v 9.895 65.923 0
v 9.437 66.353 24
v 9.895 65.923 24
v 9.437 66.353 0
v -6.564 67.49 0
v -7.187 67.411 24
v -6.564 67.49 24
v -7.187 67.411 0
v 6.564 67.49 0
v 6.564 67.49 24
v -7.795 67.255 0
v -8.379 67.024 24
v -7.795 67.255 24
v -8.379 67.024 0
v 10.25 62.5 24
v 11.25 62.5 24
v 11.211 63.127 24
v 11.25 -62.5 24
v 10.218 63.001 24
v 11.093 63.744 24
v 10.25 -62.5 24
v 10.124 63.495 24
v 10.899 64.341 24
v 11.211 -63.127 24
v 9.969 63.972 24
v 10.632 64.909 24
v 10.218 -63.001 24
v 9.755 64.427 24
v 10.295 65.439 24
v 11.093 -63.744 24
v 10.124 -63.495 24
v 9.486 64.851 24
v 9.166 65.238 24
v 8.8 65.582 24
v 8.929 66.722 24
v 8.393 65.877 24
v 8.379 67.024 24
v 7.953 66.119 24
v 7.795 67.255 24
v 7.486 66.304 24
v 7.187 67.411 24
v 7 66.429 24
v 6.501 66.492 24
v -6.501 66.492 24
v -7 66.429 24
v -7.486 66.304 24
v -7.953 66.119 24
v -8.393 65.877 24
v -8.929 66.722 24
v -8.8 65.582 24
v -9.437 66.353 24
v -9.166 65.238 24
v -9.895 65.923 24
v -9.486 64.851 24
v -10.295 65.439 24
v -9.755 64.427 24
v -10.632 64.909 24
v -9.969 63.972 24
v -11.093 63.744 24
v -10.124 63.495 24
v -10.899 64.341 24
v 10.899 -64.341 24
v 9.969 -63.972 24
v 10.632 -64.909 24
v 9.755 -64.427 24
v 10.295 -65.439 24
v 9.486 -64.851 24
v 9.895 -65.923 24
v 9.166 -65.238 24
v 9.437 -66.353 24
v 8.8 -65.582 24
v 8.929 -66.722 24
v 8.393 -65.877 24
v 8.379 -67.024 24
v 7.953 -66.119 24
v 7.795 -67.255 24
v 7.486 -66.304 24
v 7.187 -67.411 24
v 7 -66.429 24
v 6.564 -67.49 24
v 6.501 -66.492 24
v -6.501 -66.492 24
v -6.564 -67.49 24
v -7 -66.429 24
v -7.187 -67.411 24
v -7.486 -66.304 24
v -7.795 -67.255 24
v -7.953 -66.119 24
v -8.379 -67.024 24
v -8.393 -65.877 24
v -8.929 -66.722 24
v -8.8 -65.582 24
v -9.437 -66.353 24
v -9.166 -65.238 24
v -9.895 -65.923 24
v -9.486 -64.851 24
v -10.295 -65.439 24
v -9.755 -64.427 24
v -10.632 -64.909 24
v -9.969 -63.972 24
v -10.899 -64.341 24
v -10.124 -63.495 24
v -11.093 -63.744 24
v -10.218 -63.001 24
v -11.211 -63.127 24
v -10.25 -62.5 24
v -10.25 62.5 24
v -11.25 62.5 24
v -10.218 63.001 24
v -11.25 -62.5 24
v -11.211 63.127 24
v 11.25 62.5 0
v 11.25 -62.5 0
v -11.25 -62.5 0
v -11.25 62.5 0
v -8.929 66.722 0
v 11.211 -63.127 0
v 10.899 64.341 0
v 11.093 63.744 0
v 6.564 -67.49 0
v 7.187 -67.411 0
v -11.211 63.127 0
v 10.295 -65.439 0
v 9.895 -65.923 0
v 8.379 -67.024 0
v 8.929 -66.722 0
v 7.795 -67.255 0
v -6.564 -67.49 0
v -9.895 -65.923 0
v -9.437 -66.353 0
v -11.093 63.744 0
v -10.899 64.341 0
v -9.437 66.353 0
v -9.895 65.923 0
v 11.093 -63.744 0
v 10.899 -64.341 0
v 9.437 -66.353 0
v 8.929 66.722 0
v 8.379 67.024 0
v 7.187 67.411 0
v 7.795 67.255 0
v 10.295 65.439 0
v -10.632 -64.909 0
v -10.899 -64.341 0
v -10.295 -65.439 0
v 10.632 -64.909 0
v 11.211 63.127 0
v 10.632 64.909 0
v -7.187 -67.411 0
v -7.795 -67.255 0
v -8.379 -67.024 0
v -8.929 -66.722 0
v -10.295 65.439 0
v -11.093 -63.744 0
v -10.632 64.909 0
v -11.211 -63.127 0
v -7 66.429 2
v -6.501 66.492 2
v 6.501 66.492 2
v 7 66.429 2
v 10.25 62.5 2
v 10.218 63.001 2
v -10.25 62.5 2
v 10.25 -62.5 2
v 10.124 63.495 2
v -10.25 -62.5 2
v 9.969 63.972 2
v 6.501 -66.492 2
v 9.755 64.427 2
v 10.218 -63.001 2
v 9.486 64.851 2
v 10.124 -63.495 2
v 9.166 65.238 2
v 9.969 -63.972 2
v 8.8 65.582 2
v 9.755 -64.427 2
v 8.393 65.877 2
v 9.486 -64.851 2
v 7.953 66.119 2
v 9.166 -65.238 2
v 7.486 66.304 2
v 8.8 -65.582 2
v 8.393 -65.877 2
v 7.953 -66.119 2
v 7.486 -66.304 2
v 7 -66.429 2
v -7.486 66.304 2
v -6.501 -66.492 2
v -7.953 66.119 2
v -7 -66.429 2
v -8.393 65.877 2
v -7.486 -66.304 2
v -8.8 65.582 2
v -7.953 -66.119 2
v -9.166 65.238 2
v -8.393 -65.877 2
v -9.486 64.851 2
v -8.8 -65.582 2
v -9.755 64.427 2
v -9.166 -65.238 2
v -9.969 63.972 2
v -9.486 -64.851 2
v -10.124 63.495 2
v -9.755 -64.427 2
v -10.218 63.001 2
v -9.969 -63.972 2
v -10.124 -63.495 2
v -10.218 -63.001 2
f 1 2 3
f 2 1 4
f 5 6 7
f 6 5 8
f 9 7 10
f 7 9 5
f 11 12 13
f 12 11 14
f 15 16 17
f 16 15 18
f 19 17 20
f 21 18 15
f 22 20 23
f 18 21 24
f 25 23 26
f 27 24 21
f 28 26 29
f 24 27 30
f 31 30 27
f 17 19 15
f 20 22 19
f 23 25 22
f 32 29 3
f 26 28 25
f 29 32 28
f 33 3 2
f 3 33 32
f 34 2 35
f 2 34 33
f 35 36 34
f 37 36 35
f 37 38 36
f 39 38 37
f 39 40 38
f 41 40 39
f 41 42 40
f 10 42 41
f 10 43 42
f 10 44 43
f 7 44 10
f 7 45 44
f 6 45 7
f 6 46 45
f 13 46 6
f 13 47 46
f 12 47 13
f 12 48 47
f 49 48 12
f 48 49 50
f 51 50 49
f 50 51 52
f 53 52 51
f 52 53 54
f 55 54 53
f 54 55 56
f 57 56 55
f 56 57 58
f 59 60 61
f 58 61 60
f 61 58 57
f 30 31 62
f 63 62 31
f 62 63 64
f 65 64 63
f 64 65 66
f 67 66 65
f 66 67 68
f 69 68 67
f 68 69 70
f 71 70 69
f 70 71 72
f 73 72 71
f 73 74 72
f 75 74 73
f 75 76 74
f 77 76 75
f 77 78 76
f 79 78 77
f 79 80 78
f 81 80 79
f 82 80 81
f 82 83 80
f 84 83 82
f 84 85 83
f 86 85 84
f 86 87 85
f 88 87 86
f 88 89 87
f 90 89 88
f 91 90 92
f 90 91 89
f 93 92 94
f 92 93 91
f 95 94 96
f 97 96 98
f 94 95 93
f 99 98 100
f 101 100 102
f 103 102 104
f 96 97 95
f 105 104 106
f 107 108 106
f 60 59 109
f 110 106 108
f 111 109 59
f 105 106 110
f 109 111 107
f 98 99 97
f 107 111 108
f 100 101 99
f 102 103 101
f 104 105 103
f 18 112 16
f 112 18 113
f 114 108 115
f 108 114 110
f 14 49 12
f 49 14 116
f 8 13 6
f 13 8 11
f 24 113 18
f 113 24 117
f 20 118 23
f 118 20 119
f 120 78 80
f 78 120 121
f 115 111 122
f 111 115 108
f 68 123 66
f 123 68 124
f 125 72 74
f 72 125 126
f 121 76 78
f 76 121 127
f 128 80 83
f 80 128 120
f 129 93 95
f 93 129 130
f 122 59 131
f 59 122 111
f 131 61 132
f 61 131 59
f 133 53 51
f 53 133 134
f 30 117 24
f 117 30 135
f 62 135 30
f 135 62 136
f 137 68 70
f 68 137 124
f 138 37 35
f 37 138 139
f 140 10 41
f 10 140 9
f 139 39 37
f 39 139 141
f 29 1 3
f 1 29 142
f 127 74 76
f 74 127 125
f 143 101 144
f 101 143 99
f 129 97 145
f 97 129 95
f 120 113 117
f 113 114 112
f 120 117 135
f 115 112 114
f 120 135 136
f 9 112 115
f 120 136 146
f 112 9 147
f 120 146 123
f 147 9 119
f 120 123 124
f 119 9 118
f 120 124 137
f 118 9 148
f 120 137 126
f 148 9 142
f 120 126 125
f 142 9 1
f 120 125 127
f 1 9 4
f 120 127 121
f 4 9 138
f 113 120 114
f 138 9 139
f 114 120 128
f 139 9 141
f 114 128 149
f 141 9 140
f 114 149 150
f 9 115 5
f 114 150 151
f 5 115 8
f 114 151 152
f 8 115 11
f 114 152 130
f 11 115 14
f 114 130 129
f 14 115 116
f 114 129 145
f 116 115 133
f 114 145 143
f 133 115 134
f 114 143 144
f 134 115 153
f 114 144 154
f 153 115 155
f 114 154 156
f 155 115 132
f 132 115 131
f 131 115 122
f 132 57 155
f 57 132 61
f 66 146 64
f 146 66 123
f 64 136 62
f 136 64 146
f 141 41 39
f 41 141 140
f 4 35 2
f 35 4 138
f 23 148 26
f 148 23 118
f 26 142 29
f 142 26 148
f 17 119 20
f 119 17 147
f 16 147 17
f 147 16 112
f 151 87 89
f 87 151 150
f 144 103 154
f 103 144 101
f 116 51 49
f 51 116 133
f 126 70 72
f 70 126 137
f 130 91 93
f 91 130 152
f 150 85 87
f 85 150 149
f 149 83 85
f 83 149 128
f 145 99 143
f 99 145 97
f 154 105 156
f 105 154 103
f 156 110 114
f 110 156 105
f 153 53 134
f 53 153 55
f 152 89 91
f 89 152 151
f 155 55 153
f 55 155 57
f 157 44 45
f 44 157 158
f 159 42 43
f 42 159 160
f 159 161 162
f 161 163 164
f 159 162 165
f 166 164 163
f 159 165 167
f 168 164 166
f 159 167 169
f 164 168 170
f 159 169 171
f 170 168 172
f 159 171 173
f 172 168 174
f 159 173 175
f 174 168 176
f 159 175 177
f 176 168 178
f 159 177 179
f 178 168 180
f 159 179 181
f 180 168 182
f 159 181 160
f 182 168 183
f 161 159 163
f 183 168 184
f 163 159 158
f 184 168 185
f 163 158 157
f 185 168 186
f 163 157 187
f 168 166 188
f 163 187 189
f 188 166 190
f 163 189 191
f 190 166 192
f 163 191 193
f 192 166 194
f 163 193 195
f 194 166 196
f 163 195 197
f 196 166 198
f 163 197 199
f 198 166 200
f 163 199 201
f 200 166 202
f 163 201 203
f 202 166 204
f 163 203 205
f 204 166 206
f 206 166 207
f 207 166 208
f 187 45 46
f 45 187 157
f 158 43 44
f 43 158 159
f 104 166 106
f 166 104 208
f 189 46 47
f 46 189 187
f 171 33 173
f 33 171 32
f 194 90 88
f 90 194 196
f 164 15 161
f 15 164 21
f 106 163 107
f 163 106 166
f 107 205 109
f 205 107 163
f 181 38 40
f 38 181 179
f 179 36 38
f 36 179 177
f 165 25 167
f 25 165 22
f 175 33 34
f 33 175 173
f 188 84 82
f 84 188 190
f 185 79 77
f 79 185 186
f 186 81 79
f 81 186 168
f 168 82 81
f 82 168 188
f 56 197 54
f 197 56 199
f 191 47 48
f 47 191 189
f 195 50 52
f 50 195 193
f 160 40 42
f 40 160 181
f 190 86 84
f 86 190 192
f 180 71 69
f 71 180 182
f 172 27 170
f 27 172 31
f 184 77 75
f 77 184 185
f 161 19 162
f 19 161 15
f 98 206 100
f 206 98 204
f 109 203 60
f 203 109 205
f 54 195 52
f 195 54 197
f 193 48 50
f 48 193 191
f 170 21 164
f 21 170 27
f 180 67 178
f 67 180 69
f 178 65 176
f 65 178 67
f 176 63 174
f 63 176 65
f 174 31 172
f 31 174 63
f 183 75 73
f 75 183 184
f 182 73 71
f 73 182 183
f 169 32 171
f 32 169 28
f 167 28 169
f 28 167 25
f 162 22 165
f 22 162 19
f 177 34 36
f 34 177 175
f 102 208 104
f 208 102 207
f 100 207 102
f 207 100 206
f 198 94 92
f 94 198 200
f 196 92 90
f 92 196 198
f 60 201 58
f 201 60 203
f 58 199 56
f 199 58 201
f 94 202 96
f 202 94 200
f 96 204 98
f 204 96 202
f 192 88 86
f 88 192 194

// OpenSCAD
$fn = 50;


difference() {
	union() {
		hull() {
			translate(v = [-6.2500000000, 62.5000000000, 0]) {
				cylinder(h = 24, r = 5);
			}
			translate(v = [6.2500000000, 62.5000000000, 0]) {
				cylinder(h = 24, r = 5);
			}
			translate(v = [-6.2500000000, -62.5000000000, 0]) {
				cylinder(h = 24, r = 5);
			}
			translate(v = [6.2500000000, -62.5000000000, 0]) {
				cylinder(h = 24, r = 5);
			}
		}
	}
	union() {
		translate(v = [0, 0, 2]) {
			hull() {
				translate(v = [-6.2500000000, 62.5000000000, 0]) {
					cylinder(h = 22, r = 4);
				}
				translate(v = [6.2500000000, 62.5000000000, 0]) {
					cylinder(h = 22, r = 4);
				}
				translate(v = [-6.2500000000, -62.5000000000, 0]) {
					cylinder(h = 22, r = 4);
				}
				translate(v = [6.2500000000, -62.5000000000, 0]) {
					cylinder(h = 22, r = 4);
				}
			}
		}
	}
}
